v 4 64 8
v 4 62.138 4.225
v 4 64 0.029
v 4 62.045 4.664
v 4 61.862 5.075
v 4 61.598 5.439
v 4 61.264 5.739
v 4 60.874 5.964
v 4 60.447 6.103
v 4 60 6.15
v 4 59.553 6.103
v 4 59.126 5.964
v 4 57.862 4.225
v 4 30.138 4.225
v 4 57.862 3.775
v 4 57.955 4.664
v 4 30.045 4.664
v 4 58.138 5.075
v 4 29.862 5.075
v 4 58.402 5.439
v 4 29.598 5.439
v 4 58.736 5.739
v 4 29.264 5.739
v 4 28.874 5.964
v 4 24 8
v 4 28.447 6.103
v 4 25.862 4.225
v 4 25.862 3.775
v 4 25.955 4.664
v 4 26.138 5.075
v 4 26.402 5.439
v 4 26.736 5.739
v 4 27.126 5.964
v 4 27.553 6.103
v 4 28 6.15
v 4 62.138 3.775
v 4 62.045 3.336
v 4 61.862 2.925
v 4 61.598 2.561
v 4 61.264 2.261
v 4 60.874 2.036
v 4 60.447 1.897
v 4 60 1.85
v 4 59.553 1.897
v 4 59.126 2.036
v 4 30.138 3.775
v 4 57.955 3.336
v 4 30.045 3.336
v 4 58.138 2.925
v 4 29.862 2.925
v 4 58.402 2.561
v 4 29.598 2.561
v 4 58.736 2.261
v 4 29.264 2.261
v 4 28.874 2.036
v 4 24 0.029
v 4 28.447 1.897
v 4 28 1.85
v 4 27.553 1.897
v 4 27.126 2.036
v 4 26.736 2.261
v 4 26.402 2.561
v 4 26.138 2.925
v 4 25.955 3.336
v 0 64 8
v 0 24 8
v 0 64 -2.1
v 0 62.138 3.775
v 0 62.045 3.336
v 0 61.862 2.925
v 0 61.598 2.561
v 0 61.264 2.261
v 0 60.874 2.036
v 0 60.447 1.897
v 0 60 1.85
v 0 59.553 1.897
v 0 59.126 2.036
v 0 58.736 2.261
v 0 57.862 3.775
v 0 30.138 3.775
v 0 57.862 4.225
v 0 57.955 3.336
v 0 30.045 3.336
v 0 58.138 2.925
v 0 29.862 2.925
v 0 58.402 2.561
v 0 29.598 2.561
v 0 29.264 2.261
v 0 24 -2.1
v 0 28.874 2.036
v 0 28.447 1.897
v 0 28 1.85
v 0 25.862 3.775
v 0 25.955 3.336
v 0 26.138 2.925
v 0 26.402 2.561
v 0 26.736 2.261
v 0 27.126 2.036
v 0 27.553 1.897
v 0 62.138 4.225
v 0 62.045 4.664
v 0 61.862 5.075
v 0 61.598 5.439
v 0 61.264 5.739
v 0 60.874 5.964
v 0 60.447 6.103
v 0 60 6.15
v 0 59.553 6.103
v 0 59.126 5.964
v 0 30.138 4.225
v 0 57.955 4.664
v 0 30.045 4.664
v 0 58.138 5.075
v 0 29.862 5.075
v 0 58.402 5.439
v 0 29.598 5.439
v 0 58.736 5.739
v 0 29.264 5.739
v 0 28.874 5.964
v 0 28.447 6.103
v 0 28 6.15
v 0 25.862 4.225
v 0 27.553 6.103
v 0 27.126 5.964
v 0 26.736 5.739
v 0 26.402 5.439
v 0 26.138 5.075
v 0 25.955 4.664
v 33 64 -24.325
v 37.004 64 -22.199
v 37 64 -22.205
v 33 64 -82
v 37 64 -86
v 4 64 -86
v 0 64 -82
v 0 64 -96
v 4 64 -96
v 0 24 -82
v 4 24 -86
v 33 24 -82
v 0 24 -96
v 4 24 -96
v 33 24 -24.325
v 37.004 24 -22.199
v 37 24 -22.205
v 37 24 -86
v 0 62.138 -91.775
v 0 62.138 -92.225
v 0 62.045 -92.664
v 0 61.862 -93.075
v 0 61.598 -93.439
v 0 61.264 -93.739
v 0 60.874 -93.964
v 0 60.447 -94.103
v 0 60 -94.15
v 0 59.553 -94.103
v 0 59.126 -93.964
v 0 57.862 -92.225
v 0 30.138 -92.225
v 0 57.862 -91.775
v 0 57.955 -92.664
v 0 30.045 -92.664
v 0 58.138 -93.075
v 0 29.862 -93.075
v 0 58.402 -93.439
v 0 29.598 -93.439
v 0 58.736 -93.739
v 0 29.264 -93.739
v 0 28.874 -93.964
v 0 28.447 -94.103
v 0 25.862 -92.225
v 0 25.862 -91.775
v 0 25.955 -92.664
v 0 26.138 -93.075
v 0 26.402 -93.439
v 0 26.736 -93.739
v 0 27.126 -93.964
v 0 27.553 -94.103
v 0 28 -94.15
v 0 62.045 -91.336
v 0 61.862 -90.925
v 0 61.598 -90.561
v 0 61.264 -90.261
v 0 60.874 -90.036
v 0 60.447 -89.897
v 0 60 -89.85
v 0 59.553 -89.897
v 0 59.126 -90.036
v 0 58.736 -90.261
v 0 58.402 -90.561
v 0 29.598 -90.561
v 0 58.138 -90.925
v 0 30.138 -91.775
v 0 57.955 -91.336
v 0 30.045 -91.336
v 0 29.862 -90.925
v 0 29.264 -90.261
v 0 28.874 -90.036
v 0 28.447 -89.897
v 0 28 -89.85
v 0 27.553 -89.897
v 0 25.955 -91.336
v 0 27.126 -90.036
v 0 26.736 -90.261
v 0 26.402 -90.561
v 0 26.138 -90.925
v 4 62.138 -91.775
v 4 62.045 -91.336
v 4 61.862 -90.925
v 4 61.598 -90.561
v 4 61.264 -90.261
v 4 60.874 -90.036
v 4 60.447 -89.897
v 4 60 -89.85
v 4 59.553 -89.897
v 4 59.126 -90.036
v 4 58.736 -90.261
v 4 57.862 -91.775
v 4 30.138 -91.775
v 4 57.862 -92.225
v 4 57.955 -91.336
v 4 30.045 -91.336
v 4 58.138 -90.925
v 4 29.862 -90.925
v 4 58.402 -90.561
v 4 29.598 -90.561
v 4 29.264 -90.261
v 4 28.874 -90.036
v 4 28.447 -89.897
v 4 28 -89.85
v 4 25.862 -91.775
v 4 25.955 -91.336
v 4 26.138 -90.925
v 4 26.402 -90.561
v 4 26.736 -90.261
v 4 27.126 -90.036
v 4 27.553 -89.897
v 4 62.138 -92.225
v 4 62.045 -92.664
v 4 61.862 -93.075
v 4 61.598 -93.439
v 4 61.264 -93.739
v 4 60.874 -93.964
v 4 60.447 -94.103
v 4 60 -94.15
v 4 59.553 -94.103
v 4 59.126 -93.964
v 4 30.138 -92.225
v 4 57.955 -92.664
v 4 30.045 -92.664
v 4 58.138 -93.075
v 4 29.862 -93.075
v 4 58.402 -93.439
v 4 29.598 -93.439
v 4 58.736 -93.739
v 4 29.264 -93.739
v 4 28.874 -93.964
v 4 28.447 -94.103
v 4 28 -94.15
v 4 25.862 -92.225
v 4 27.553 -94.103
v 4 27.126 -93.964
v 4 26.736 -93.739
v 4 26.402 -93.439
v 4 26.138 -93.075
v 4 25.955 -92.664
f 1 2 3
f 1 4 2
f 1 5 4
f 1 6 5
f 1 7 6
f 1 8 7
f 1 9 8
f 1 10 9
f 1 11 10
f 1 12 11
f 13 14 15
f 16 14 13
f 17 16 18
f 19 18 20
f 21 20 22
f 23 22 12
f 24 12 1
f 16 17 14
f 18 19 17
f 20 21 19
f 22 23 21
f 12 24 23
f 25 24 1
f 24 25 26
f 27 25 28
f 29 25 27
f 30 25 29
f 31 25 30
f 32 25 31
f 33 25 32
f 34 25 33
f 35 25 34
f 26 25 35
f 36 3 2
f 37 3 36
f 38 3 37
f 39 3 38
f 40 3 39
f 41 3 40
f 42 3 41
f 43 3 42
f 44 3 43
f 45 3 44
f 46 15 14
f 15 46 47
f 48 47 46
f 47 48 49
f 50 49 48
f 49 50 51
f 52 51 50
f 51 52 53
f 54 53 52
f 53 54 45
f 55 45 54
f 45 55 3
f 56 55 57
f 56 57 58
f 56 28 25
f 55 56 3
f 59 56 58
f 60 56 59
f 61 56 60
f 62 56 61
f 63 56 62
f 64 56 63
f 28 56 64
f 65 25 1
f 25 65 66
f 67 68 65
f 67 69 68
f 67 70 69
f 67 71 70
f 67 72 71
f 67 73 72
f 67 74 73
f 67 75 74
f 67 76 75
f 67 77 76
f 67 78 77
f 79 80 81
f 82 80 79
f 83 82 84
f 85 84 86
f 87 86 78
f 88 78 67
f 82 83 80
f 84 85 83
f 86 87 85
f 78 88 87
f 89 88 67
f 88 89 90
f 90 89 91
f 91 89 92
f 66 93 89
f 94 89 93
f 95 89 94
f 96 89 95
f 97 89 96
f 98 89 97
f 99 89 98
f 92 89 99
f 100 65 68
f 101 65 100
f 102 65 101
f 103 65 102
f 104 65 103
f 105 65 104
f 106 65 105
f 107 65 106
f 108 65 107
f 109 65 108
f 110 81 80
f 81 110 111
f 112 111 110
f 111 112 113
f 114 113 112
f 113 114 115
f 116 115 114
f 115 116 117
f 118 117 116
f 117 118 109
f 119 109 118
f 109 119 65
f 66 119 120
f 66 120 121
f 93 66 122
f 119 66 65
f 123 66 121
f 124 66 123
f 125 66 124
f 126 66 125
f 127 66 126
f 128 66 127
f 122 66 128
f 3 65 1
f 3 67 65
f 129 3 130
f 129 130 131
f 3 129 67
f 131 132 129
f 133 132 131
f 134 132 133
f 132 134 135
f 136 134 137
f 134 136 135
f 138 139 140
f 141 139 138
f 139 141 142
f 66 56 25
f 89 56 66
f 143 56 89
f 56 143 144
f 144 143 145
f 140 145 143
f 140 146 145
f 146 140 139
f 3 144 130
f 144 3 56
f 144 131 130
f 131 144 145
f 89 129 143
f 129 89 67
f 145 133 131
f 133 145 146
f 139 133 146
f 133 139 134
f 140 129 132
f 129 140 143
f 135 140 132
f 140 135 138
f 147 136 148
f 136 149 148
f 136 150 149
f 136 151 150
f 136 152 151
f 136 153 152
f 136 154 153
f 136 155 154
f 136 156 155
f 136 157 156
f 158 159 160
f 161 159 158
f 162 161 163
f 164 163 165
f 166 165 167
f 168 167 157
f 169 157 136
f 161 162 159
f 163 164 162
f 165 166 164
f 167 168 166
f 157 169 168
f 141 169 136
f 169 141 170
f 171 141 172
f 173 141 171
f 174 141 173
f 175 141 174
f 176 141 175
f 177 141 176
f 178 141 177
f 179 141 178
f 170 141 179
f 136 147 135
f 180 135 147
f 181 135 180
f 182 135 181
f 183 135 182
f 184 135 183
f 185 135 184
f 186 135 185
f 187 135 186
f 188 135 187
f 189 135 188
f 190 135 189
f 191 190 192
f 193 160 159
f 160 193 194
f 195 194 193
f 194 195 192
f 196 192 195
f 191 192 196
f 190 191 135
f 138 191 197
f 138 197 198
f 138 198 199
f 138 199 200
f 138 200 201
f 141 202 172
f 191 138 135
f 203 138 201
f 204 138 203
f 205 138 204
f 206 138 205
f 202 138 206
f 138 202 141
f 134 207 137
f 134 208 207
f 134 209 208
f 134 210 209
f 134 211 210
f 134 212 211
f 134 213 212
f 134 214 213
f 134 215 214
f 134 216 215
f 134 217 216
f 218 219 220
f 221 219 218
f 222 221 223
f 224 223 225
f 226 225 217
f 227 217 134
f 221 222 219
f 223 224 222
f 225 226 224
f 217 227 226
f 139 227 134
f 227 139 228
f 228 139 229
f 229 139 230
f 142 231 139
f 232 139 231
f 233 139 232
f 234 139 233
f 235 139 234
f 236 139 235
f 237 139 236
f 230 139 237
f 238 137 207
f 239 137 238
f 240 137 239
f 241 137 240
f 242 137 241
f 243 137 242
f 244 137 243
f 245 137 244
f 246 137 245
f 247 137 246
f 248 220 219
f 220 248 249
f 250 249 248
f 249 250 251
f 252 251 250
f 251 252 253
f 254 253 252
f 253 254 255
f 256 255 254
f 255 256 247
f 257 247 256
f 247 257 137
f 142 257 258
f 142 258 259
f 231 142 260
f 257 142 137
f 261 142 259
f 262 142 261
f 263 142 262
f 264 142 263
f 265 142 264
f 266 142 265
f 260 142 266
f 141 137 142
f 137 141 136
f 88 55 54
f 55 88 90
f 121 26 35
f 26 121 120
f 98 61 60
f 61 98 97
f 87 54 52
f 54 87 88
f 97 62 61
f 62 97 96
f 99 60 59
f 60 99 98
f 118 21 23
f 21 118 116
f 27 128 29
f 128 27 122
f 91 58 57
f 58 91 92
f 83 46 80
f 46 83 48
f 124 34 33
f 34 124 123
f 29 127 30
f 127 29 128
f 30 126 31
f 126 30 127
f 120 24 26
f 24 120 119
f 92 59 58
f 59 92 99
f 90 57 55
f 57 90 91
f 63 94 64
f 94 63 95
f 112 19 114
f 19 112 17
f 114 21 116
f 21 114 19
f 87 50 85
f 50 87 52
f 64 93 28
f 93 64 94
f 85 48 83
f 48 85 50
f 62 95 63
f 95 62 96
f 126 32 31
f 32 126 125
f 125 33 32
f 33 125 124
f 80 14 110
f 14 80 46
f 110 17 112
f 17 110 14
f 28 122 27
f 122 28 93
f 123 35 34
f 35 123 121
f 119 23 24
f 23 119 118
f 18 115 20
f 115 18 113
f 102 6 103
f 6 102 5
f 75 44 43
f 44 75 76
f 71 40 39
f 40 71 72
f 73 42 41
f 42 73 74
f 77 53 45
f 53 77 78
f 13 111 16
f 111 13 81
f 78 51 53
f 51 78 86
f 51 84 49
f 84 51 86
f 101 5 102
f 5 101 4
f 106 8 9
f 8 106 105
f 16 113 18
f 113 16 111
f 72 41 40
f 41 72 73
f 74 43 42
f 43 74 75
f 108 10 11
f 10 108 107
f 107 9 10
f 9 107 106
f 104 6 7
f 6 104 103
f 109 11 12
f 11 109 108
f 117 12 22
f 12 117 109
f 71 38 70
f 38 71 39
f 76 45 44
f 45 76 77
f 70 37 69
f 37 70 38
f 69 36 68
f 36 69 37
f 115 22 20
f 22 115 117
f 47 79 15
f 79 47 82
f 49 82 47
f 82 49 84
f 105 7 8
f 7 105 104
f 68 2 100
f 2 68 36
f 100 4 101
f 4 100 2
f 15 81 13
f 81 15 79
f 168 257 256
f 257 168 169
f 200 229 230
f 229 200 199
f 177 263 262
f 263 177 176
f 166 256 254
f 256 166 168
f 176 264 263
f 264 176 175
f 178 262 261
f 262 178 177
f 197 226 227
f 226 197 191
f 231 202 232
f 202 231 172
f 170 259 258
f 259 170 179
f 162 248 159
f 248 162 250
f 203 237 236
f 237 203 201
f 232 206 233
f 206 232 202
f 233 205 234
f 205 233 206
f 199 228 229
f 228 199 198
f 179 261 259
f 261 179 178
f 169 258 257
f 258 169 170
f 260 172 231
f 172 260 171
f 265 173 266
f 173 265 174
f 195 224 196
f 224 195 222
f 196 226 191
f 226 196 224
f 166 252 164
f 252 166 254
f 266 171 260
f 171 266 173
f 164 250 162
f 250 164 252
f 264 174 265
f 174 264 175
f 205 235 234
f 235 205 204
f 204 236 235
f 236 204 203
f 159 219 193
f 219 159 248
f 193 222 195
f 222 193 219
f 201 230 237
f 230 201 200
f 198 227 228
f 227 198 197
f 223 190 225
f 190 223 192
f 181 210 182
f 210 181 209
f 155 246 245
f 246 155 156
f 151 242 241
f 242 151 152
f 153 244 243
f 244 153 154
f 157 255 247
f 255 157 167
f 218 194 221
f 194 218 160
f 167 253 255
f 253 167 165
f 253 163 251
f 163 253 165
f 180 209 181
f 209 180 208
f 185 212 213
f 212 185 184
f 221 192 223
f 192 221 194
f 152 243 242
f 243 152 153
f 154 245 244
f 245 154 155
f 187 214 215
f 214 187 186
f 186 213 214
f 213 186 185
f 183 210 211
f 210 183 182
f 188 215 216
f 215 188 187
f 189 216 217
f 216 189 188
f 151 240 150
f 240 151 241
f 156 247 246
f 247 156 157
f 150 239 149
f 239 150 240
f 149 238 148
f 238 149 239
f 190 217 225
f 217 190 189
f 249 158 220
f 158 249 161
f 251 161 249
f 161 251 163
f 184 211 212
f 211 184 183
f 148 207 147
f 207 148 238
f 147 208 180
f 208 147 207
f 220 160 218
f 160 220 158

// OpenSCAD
// back track left entry
color ("pink")
difference() {
union() {
    // top harness
    translate([0,24,-2.1])
    cube([4,40,10.1]);
    
    // top angled piece
    translate([0,24,-2.1])
    rotate([0,33.96,0])
    cube([41.92,40,4]);
    
    // vertical piece
    translate([33,24,-86])
    cube([4,40,63.8]);
    
    // bottom harness
    translate([0,24,-86])
    cube([33,40,4]);
    
    translate([0,24,-96])
    cube([4,40,11]);
    
}
    // top left hole
    translate([-4,28,4])
    rotate([0,90,0])
    cylinder(r=2.15,60, $fn=30);

    // top right hole
    translate([-4,60,4])
    rotate([0,90,0])
    cylinder(r=2.15,60, $fn=30);

    // bottom left hole
    translate([-4,28,-92])
    rotate([0,90,0])
    cylinder(r=2.15,60, $fn=30);

    // bottom right hole
    translate([-4,60,-92])
    rotate([0,90,0])
    cylinder(r=2.15,60, $fn=30);
}
